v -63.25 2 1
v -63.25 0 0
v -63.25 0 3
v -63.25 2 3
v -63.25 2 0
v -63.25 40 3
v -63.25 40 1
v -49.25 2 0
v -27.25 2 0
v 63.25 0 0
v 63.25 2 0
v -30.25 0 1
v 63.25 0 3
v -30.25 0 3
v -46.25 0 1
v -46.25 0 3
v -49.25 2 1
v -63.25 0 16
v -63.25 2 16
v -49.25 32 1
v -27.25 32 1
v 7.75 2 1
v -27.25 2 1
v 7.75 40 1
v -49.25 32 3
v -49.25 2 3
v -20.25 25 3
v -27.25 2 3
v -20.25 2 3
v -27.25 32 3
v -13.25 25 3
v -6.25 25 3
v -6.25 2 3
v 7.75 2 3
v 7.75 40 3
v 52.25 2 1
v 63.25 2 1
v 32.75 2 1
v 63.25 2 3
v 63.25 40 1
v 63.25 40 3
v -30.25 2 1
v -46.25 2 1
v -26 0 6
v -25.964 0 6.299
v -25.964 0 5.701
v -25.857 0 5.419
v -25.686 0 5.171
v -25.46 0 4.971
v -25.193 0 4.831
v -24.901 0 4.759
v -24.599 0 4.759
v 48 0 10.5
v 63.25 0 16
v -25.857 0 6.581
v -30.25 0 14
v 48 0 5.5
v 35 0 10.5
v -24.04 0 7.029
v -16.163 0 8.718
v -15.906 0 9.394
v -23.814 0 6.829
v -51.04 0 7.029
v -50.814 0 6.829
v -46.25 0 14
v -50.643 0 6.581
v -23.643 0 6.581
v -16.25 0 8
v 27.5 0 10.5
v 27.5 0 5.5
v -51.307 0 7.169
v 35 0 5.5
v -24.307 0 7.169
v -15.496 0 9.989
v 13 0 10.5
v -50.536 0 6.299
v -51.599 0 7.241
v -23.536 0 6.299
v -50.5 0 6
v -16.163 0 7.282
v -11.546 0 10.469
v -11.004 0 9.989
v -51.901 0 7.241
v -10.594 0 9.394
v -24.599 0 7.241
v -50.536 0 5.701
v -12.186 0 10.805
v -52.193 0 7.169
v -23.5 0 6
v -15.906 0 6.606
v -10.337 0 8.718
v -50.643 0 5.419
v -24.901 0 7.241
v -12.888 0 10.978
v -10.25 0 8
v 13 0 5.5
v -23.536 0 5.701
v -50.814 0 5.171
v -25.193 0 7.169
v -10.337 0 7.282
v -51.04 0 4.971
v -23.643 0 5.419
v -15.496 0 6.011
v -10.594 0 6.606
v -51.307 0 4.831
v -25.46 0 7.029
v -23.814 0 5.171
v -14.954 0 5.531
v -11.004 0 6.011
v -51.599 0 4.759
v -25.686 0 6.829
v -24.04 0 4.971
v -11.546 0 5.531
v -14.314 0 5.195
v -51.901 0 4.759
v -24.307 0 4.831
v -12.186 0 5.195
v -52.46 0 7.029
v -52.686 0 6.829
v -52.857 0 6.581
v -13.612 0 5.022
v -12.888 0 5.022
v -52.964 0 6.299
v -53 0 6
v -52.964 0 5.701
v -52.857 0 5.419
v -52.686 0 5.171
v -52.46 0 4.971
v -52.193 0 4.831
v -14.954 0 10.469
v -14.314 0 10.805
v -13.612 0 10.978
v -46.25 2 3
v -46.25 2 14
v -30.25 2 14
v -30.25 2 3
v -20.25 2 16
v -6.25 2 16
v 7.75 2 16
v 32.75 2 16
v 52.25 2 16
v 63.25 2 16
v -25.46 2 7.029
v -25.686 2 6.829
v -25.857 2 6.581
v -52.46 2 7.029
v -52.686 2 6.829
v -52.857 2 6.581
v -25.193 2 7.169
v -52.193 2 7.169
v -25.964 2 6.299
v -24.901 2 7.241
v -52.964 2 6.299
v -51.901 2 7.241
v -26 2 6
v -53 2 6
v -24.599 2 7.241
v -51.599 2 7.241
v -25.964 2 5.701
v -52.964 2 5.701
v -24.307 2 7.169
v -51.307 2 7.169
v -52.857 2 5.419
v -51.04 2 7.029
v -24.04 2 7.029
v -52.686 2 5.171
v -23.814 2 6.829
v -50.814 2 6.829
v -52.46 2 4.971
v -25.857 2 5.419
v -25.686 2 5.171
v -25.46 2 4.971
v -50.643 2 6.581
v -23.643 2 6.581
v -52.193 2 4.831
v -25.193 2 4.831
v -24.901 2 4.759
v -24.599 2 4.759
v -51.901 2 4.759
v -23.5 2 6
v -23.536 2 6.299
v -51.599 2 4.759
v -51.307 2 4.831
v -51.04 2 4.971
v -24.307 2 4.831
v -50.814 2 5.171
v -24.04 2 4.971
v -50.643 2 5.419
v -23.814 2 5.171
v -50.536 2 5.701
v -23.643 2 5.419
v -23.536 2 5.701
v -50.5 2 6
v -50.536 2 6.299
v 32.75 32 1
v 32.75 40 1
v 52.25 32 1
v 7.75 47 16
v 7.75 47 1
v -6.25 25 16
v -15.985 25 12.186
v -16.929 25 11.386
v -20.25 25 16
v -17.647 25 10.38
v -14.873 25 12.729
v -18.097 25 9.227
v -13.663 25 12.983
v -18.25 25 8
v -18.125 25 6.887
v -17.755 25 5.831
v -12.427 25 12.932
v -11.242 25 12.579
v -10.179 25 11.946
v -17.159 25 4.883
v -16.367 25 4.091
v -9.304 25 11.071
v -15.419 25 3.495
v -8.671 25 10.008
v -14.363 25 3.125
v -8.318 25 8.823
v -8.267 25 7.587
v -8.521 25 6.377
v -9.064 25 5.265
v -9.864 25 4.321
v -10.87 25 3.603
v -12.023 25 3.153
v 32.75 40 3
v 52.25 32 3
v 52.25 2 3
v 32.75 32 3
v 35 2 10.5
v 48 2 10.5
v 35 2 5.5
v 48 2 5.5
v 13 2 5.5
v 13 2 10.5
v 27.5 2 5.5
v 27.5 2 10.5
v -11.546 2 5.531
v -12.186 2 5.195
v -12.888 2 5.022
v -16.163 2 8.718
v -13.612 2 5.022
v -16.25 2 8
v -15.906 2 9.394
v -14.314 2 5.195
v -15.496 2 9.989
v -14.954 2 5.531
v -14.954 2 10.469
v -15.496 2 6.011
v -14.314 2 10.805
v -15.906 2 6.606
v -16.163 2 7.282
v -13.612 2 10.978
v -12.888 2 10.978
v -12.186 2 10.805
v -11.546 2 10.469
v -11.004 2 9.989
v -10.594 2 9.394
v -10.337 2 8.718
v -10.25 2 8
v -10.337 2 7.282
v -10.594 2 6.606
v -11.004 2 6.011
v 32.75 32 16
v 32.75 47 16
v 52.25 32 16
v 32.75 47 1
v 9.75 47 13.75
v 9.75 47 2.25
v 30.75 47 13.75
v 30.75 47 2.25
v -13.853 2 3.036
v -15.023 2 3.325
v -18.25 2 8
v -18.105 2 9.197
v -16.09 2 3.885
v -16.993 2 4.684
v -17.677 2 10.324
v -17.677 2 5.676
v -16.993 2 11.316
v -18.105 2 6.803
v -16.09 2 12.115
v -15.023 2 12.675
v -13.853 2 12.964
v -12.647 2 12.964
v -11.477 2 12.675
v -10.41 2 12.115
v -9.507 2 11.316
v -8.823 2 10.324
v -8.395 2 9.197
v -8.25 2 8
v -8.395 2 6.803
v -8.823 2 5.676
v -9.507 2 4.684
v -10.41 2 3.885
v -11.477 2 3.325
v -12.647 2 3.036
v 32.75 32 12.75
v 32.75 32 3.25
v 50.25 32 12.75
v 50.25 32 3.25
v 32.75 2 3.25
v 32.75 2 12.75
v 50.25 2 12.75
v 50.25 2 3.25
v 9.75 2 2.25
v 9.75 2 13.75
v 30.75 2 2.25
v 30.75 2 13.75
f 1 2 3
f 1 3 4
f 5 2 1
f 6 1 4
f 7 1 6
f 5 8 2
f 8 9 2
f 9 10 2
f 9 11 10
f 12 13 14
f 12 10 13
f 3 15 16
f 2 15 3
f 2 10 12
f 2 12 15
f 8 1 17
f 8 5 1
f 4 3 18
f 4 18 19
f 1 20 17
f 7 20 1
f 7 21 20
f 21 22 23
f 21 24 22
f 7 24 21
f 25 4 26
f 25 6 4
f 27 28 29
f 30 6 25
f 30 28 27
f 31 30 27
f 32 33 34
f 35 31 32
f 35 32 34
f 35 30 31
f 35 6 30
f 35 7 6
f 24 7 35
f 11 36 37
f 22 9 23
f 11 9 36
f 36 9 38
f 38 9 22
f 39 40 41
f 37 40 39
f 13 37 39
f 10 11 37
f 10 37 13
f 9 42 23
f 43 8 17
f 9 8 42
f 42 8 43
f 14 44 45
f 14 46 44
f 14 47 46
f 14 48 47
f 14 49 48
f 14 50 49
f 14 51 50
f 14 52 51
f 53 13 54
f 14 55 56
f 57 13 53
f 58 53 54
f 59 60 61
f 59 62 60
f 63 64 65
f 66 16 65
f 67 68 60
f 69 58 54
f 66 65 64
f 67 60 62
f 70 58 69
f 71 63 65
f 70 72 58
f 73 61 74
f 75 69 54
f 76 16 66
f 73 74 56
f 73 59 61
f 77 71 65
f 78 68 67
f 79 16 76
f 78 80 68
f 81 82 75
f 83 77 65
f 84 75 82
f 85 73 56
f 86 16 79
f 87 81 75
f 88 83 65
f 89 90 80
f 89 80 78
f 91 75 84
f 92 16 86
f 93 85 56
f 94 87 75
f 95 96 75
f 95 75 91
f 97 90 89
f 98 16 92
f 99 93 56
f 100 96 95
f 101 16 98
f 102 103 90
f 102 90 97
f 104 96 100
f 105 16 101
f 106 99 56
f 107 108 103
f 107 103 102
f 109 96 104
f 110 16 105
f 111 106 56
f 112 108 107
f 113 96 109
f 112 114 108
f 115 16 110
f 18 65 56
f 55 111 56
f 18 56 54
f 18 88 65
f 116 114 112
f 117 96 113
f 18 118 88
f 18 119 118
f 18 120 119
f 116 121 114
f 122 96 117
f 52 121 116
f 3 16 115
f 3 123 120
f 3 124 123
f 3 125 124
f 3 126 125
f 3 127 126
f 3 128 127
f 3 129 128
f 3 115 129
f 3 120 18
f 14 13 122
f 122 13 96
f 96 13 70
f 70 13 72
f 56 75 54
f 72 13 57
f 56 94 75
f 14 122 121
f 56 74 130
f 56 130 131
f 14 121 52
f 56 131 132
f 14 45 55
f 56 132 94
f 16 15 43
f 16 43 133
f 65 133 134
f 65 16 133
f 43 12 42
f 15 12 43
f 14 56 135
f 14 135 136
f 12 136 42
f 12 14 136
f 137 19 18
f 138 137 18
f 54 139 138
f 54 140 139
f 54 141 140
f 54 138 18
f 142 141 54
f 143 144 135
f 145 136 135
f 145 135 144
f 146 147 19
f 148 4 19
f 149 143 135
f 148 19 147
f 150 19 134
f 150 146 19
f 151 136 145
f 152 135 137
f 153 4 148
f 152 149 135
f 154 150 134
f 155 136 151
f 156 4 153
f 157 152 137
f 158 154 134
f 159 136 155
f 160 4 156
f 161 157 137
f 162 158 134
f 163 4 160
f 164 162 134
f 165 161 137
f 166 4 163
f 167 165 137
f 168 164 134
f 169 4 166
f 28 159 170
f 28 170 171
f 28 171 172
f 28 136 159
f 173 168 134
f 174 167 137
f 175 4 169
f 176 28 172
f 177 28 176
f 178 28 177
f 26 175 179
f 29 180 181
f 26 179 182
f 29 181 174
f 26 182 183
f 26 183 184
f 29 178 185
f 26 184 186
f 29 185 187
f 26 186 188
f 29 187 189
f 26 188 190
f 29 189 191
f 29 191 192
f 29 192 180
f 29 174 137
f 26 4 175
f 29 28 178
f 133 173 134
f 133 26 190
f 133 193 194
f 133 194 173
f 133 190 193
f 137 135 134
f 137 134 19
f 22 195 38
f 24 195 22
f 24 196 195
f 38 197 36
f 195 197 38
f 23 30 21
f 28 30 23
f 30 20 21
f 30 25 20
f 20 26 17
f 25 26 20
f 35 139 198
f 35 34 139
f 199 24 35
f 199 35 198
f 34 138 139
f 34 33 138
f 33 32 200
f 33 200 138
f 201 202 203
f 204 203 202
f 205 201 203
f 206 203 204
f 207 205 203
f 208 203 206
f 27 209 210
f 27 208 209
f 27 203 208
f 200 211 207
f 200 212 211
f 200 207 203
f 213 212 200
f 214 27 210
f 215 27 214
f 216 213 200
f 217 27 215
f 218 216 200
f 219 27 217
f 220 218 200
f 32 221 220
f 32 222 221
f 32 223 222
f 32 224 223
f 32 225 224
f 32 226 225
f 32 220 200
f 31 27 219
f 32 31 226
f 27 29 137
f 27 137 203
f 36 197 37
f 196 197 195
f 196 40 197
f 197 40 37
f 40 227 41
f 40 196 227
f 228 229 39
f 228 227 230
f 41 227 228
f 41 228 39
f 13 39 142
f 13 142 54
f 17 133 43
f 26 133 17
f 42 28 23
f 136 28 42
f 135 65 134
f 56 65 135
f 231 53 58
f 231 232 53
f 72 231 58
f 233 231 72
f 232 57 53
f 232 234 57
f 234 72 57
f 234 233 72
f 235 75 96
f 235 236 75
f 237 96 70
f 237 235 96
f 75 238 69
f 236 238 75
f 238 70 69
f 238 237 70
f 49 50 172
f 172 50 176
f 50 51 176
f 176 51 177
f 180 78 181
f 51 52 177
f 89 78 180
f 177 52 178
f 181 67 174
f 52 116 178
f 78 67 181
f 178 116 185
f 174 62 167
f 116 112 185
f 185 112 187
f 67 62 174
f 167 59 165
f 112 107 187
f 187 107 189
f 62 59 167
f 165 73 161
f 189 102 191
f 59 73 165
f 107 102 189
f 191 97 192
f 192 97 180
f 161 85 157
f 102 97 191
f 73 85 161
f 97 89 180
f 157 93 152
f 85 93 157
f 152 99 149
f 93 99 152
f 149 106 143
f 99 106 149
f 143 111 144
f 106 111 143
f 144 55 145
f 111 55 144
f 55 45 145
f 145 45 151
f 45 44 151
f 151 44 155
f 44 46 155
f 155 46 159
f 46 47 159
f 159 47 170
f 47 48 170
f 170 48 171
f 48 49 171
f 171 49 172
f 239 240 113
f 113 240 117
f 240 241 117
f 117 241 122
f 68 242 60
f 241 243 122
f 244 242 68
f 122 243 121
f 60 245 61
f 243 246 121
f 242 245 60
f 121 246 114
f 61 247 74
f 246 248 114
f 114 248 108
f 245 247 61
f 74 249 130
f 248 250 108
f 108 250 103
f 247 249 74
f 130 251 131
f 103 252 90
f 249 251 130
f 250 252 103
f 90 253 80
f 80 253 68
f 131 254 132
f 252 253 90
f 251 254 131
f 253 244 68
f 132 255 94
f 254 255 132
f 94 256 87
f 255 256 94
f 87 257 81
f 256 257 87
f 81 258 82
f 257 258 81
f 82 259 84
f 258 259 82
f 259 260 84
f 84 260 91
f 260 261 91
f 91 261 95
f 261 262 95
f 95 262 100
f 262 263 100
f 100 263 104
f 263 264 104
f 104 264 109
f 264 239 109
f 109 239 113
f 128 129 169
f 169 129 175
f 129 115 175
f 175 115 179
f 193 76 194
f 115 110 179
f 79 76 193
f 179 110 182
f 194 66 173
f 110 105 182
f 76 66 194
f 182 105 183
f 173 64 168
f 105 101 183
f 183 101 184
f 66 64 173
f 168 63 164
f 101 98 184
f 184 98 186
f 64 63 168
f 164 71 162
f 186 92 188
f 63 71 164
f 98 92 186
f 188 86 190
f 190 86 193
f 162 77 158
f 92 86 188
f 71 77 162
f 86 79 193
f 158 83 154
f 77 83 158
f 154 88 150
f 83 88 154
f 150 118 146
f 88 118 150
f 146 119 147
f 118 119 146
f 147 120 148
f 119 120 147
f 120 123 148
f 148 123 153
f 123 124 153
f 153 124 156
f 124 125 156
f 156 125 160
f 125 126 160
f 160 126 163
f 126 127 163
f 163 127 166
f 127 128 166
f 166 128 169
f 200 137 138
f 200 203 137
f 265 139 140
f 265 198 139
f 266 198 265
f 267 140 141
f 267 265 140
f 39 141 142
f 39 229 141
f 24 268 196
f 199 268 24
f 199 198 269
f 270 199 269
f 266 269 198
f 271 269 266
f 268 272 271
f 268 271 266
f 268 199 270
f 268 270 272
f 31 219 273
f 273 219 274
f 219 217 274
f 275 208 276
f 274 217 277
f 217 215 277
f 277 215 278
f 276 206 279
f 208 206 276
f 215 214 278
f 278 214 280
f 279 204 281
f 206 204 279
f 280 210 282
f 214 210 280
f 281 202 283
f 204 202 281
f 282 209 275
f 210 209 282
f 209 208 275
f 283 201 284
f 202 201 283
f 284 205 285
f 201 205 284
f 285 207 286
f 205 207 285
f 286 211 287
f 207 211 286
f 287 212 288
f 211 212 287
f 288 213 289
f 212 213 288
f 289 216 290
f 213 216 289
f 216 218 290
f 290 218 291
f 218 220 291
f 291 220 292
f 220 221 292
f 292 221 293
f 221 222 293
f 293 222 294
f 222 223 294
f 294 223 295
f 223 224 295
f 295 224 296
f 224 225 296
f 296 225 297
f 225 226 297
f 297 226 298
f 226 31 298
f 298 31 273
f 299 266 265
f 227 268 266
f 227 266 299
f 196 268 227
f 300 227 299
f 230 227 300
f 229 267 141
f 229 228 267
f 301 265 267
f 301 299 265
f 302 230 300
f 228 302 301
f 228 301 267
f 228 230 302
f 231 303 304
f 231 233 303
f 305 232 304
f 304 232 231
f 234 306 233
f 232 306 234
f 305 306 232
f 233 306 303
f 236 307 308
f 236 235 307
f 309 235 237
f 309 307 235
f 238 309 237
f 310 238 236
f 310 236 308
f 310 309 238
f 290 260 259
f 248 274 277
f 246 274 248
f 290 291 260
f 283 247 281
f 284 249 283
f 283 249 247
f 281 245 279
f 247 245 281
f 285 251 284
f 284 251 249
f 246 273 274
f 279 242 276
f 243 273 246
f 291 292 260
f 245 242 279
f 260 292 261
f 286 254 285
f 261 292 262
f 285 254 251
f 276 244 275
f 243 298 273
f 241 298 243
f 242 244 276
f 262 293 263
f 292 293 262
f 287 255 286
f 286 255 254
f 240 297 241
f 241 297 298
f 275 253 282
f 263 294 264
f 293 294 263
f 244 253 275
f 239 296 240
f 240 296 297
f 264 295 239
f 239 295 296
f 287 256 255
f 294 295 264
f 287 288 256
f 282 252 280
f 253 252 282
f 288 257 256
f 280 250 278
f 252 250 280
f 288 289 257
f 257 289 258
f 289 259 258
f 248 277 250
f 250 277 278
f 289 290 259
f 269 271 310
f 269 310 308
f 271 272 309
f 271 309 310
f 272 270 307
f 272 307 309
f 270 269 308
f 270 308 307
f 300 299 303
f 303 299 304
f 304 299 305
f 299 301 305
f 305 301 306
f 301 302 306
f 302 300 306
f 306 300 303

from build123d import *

# Parameters (mm, degrees)
SKETCH_W        = 126.5
SKETCH_H        = 40
PAD_DEPTH       = 3
SKETCH001_W     = 126.5
SKETCH001_H     = 38
POCKET_DEPTH    = 1
SKETCH002_W     = 126.5
SKETCH002_H     = 2
PAD001_DEPTH    = 13
SKETCH003_W     = 19.5
SKETCH003_H     = 30
SKETCH003_W_2   = 25
SKETCH003_H_2   = 45
PAD002_DEPTH    = 15
SKETCH004_W     = 13
SKETCH004_H     = 5
POCKET001_DEPTH = 32.001
SKETCH005_W     = 17.5
SKETCH005_H     = 9.5
POCKET002_DEPTH = 30
SKETCH006_W     = 14.5
SKETCH006_H     = 5
POCKET003_DEPTH = 47.001
SKETCH007_W     = 21
SKETCH007_H     = 11.5
POCKET004_DEPTH = 45
SKETCH008_W     = 14
SKETCH008_H     = 23
PAD003_DEPTH    = 13
SKETCH009_R     = 5
POCKET005_DEPTH = 23
SKETCH010_R     = 3
POCKET006_DEPTH = 2.001
SKETCH011_R     = 1.25
SKETCH011_W     = 16
SKETCH011_H     = 13
POCKET007_DEPTH = 2
SKETCH012_W     = 22
SKETCH012_H     = 30
POCKET008_DEPTH = 3.001


with BuildPart() as part:
    # Sketch → Pad (new body)
    with BuildSketch(Plane.XY):
        with Locations((0, 20)):
            Rectangle(SKETCH_W, SKETCH_H)
    extrude(amount=PAD_DEPTH)

    # Sketch001 → Pocket (cut)
    with BuildSketch(Plane(origin=(0, 0, 0), x_dir=(1, 0, 0), z_dir=(0, 0, -1))):
        with Locations((0, -21)):
            Rectangle(SKETCH001_W, SKETCH001_H)
    extrude(amount=-POCKET_DEPTH, mode=Mode.SUBTRACT)

    # Sketch002 → Pad001 (new body)
    with BuildSketch(Plane.XY.offset(3)):
        with Locations((0, 1)):
            Rectangle(SKETCH002_W, SKETCH002_H)
    extrude(amount=PAD001_DEPTH)

    # Sketch003 → Pad002 (new body)
    with BuildSketch(Plane(origin=(0, 0, 1), x_dir=(1, 0, 0), z_dir=(0, 0, -1))):
        with Locations((42.5, -17)):
            Rectangle(SKETCH003_W, SKETCH003_H)
        with Locations((20.25, -24.5)):
            Rectangle(SKETCH003_W_2, SKETCH003_H_2)
    extrude(amount=-PAD002_DEPTH)

    # Sketch004 → Pocket001 (cut, through all)
    with BuildSketch(Plane(origin=(0, 32, 0), x_dir=(-1, 0, 0), z_dir=(0, 1, 0))):
        with Locations((-41.5, 8)):
            Rectangle(SKETCH004_W, SKETCH004_H)
    extrude(amount=-POCKET001_DEPTH, mode=Mode.SUBTRACT)

    # Sketch005 → Pocket002 (cut)
    with BuildSketch(Plane(origin=(0, 32, 0), x_dir=(-1, 0, 0), z_dir=(0, 1, 0))):
        with Locations((-41.5, 8)):
            Rectangle(SKETCH005_W, SKETCH005_H)
    extrude(amount=-POCKET002_DEPTH, mode=Mode.SUBTRACT)

    # Sketch006 → Pocket003 (cut, through all)
    with BuildSketch(Plane(origin=(0, 47, 0), x_dir=(-1, 0, 0), z_dir=(0, 1, 0))):
        with Locations((-20.25, 8)):
            Rectangle(SKETCH006_W, SKETCH006_H)
    extrude(amount=-POCKET003_DEPTH, mode=Mode.SUBTRACT)

    # Sketch007 → Pocket004 (cut)
    with BuildSketch(Plane(origin=(0, 47, 0), x_dir=(-1, 0, 0), z_dir=(0, 1, 0))):
        with Locations((-20.25, 8)):
            Rectangle(SKETCH007_W, SKETCH007_H)
    extrude(amount=-POCKET004_DEPTH, mode=Mode.SUBTRACT)

    # Sketch008 → Pad003 (new body)
    with BuildSketch(Plane.XY.offset(3)):
        with Locations((-13.25, 13.5)):
            Rectangle(SKETCH008_W, SKETCH008_H)
    extrude(amount=PAD003_DEPTH)

    # Sketch009 → Pocket005 (cut)
    with BuildSketch(Plane(origin=(0, 25, 0), x_dir=(-1, 0, 0), z_dir=(0, 1, 0))):
        with Locations((13.25, 8)):
            Circle(SKETCH009_R)
    extrude(amount=-POCKET005_DEPTH, mode=Mode.SUBTRACT)

    # Sketch010 → Pocket006 (cut, through all)
    with BuildSketch(Plane(origin=(0, 2, 0), x_dir=(-1, 0, 0), z_dir=(0, 1, 0))):
        with Locations((13.25, 8)):
            Circle(SKETCH010_R)
    extrude(amount=-POCKET006_DEPTH, mode=Mode.SUBTRACT)

    # Sketch011 → Pocket007 (cut)
    with BuildSketch(Plane.XZ):
        with Locations((-24.75, 6)):
            Circle(SKETCH011_R)
        with Locations((-51.75, 6)):
            Circle(SKETCH011_R)
        with Locations((-38.25, 7.5)):
            Rectangle(SKETCH011_W, SKETCH011_H)
    extrude(amount=-POCKET007_DEPTH, mode=Mode.SUBTRACT)

    # Sketch012 → Pocket008 (cut, through all)
    with BuildSketch(Plane.XY.offset(3)):
        with Locations((-38.25, 17)):
            Rectangle(SKETCH012_W, SKETCH012_H)
    extrude(amount=-POCKET008_DEPTH, mode=Mode.SUBTRACT)


solid = part.part
